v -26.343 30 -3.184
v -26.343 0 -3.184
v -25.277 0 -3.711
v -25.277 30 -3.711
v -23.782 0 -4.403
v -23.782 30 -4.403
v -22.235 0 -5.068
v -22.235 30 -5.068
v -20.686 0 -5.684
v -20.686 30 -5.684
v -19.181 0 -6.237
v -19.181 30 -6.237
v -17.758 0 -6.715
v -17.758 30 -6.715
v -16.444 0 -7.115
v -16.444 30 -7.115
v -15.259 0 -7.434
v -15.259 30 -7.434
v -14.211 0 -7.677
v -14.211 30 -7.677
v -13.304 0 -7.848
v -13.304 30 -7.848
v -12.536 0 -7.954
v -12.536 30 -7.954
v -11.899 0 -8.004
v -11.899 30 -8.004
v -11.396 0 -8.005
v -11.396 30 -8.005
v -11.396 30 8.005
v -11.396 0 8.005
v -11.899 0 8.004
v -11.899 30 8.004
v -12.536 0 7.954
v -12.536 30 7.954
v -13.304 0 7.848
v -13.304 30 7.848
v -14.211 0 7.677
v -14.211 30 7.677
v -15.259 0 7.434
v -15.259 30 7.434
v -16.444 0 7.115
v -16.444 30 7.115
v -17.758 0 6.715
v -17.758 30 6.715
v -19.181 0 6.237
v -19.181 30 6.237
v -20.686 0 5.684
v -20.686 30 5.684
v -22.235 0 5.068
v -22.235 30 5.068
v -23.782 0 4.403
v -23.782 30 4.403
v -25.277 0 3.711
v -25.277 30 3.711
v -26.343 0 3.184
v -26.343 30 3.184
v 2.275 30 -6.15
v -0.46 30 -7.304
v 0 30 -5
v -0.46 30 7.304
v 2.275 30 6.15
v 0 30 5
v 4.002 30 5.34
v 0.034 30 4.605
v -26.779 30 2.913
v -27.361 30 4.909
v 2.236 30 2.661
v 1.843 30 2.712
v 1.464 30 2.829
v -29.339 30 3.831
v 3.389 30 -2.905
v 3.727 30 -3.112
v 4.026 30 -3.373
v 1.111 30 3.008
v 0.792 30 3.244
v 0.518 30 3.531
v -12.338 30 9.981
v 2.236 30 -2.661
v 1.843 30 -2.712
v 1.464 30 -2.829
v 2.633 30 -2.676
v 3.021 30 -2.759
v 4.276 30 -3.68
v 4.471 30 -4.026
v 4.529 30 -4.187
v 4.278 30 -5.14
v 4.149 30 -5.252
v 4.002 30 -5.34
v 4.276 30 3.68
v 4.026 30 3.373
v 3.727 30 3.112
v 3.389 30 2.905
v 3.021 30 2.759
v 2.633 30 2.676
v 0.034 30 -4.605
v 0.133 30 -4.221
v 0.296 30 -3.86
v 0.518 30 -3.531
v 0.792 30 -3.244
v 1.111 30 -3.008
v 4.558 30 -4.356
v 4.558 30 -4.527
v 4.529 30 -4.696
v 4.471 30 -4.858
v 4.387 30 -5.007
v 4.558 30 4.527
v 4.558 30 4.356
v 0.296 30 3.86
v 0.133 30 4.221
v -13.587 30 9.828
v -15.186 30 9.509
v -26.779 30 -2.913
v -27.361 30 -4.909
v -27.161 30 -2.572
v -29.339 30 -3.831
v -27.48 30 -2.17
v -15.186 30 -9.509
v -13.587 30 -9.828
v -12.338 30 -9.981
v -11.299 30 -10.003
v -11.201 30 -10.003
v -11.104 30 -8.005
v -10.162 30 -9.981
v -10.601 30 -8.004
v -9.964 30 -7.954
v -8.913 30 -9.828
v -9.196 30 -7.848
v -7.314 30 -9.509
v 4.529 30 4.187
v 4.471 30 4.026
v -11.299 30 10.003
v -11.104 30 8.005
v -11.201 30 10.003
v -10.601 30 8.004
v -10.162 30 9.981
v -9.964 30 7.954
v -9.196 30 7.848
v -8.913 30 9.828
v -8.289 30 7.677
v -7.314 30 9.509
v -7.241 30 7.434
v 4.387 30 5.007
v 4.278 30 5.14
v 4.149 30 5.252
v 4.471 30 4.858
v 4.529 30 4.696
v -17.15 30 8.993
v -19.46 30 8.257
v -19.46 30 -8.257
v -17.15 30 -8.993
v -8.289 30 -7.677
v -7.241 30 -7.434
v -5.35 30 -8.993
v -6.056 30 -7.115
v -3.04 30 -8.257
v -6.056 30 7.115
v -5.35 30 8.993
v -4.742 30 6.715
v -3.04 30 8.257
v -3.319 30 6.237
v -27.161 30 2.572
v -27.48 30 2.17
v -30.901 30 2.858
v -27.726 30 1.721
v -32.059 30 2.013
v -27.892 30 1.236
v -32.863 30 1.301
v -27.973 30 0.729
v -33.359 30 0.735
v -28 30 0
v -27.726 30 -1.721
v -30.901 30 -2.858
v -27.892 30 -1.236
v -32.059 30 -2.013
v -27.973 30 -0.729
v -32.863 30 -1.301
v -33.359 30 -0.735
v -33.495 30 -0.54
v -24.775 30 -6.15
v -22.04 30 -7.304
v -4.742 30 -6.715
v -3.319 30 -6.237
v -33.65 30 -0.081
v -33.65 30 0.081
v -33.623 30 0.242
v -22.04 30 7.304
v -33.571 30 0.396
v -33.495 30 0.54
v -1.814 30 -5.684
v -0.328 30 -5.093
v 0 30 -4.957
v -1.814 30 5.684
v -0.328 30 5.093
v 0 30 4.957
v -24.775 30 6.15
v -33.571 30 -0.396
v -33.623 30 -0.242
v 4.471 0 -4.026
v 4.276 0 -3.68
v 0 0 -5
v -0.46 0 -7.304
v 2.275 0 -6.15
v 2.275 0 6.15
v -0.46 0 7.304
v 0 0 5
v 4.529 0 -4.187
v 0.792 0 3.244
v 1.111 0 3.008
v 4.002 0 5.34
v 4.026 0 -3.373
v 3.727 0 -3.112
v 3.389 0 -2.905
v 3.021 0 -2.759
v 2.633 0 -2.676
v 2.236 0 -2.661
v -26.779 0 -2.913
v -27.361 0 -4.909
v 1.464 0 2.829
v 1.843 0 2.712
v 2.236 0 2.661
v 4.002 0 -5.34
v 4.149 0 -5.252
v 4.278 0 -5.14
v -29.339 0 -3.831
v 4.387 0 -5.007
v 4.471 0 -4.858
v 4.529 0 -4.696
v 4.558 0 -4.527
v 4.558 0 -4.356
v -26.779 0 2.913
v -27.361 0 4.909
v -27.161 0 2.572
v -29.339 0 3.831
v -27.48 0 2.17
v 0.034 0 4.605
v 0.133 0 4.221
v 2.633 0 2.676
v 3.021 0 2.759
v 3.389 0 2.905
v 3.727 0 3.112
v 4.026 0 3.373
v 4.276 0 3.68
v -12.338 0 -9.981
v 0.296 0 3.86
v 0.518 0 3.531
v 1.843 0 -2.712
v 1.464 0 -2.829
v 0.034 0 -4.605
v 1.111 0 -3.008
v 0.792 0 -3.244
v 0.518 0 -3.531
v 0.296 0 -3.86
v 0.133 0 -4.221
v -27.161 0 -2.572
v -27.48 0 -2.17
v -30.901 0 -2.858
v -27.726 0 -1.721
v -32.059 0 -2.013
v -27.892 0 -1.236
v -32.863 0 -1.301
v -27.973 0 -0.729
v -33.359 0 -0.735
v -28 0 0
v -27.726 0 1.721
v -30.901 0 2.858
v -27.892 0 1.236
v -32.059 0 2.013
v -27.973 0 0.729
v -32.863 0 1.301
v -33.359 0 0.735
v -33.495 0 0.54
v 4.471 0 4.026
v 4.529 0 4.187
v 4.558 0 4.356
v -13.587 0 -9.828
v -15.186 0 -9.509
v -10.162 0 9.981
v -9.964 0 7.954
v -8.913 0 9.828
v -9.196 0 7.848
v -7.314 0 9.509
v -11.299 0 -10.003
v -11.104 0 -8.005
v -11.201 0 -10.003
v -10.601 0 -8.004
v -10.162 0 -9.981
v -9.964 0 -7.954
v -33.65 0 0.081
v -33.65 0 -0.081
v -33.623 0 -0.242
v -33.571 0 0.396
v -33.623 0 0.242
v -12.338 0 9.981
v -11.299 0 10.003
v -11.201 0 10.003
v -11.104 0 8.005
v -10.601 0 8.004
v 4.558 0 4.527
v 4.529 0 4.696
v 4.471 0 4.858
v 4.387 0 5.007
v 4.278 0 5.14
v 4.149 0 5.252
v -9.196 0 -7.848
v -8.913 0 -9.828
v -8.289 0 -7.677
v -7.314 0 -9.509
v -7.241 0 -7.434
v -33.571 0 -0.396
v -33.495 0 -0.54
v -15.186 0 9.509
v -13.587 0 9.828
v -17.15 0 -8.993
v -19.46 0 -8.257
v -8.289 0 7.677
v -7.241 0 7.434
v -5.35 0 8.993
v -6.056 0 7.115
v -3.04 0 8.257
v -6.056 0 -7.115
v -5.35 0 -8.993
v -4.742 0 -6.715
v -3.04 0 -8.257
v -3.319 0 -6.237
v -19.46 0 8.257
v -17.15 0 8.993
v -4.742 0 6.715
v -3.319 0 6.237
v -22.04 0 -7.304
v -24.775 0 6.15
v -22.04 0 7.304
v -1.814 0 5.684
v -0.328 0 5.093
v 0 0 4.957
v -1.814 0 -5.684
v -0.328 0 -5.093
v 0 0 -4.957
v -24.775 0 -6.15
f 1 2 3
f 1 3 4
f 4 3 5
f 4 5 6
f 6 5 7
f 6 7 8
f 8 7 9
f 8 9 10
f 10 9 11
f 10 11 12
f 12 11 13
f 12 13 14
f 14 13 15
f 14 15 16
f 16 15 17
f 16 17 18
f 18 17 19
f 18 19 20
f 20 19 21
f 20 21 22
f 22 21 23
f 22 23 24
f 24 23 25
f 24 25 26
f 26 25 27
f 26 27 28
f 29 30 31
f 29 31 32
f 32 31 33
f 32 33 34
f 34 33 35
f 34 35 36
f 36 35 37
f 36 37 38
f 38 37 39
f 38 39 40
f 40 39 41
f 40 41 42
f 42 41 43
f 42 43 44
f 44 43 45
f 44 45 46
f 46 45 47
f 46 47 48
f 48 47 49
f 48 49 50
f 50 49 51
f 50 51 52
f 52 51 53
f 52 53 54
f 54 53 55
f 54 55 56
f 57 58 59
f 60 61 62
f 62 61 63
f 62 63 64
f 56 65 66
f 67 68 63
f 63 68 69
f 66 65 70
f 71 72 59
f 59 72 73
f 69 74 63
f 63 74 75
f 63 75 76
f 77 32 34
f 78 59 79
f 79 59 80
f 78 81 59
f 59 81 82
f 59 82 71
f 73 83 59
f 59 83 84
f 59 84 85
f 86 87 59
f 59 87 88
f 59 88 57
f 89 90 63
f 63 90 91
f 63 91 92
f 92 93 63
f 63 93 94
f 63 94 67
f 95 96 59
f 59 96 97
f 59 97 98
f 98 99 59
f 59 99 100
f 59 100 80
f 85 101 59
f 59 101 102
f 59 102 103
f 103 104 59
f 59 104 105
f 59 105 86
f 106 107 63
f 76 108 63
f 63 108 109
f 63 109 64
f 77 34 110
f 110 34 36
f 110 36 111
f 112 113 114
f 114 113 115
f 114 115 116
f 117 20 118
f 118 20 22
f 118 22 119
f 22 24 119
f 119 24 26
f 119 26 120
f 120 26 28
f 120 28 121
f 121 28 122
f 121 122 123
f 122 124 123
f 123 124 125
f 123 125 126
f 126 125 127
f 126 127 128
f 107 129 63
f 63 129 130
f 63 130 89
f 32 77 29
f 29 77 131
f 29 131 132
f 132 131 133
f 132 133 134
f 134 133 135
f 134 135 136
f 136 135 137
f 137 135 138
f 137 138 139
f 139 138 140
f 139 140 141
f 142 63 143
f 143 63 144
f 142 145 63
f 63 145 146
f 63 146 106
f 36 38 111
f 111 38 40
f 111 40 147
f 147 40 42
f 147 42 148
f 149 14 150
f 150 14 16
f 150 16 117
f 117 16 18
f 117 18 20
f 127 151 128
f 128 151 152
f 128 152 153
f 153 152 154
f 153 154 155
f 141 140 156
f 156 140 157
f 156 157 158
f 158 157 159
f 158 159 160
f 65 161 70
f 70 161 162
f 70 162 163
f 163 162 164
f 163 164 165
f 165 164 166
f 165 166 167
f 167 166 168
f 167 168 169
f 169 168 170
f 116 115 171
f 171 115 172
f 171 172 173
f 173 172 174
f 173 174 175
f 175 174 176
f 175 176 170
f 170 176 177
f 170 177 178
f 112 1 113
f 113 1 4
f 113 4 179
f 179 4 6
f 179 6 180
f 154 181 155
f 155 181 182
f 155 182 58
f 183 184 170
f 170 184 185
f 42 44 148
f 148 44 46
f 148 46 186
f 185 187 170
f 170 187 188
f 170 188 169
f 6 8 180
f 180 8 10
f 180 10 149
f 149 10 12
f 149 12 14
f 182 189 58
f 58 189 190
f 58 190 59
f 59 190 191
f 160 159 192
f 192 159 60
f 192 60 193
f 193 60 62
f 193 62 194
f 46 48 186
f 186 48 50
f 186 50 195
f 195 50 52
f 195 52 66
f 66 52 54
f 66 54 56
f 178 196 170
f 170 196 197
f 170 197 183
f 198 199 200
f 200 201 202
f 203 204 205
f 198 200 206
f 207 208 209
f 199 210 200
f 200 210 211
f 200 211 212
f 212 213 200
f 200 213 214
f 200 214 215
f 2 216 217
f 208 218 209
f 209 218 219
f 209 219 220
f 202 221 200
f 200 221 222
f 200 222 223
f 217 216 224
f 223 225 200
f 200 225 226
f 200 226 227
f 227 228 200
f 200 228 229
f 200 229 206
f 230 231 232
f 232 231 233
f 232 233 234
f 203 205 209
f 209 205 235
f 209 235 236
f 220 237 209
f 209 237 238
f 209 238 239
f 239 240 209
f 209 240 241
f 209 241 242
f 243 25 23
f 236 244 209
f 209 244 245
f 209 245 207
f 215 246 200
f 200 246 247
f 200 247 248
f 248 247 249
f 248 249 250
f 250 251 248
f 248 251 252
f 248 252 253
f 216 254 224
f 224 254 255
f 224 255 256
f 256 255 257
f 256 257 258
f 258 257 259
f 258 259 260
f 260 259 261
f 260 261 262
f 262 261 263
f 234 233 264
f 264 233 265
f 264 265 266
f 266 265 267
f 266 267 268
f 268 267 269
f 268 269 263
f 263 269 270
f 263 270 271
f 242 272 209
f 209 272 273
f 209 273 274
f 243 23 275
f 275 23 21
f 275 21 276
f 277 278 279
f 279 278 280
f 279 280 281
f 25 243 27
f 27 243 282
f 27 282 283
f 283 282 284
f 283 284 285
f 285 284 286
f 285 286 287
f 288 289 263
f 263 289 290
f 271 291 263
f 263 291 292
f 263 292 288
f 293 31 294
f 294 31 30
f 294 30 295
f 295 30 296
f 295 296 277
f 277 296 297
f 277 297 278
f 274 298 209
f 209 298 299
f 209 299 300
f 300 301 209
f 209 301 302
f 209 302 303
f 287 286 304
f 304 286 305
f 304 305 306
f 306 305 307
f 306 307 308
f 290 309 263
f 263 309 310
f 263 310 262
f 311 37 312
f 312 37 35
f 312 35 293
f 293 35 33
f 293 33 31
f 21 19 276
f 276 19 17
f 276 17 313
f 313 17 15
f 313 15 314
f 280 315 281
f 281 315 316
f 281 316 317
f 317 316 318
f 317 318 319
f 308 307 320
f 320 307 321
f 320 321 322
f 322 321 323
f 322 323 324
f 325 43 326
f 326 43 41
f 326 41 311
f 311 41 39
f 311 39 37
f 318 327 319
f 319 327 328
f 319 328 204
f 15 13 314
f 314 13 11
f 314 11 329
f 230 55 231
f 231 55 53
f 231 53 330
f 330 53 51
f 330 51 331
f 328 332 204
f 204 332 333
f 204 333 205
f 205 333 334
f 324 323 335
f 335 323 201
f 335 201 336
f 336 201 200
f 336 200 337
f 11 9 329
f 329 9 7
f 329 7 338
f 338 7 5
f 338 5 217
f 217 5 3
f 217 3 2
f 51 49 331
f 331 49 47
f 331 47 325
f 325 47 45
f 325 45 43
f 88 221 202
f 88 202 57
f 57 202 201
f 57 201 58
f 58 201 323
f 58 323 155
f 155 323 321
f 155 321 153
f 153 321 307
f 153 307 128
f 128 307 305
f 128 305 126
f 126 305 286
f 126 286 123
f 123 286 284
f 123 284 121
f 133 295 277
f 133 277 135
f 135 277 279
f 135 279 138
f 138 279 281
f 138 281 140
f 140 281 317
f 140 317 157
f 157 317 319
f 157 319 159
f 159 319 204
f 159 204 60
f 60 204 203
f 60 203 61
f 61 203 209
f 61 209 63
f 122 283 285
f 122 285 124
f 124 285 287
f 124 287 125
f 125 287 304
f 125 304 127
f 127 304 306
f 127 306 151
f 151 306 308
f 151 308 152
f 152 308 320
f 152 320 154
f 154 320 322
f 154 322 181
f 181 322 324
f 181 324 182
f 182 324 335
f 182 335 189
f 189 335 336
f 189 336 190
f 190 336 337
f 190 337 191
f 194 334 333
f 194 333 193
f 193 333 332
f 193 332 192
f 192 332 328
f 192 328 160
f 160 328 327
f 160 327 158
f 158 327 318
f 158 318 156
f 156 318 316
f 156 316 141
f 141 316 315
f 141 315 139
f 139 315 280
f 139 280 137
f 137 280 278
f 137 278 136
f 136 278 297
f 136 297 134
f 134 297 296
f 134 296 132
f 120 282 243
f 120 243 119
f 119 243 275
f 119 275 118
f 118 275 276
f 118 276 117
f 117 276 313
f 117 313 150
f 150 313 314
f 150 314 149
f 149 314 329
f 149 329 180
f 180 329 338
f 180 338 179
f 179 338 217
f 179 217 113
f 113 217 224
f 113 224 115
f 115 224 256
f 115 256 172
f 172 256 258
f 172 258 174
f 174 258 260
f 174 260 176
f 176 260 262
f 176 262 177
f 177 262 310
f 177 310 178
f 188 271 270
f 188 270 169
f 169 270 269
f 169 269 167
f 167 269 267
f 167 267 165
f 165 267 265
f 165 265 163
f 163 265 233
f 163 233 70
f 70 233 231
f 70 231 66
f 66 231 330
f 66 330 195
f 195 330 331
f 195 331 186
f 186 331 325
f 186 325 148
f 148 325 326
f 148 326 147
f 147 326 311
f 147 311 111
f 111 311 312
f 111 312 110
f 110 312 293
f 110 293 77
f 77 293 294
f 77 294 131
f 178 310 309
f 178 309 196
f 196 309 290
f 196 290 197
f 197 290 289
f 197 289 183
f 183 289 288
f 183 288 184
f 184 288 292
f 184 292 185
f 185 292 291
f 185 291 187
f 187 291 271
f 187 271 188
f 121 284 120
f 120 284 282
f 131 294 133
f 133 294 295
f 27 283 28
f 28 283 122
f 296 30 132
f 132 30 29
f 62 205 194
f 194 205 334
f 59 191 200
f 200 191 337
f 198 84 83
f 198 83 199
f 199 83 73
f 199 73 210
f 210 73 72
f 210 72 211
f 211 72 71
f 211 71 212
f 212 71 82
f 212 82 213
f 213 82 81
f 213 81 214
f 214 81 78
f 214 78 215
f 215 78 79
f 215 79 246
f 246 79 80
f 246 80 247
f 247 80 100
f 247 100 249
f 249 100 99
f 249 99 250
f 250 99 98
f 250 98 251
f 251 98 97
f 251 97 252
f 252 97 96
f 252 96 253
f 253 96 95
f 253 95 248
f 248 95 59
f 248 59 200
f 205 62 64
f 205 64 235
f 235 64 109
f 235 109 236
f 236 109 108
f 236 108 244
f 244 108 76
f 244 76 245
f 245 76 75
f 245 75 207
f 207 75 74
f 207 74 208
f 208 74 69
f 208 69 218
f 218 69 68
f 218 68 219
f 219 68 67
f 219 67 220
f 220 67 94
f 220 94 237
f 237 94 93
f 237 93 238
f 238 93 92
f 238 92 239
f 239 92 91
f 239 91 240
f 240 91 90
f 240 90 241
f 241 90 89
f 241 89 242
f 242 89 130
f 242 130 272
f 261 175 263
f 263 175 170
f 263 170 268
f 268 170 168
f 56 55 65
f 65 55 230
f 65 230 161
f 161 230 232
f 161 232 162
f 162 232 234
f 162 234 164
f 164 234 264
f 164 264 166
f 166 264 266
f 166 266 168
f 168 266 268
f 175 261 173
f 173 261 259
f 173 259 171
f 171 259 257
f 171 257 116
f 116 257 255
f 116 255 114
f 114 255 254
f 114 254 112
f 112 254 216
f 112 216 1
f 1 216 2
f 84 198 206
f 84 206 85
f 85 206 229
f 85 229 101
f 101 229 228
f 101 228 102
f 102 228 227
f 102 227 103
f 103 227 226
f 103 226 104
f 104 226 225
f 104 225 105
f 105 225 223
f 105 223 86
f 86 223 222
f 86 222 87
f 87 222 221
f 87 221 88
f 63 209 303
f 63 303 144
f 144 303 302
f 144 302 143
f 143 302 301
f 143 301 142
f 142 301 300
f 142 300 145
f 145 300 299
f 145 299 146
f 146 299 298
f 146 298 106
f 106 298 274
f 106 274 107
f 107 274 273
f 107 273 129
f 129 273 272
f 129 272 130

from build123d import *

# Parameters (mm, degrees)
BOSS_EXTRUDE1_DEPTH = 30
FILLET1_R           = 1
SHELL1_T            = -2
CUT_EXTRUDE1_REACH  = 48.182
SKETCH3_W           = 10
SKETCH3_H           = 30
BOSS_EXTRUDE2_DEPTH = 30
BOSS_EXTRUDE4_START = -30
BOSS_EXTRUDE4_DEPTH = 30
FILLET2_R           = 3
FILLET3_R           = 1


# Read off the part's stored shape, not the designer's step: Boss-Extrude4
with BuildPart() as part:
    # Sketch1 → Boss-Extrude1 (new body)
    with BuildSketch(Plane(origin=(0, 0, 0), x_dir=(1, 0, 0), z_dir=(0, 1, 0))):
        with BuildLine():
            add(Edge.make_bspline(
                [(-11.25, 10), (-5.781911856, 10.311342007), (10.269870792, 3.454667183), (11.25, 0)],
                knots=[0.452930386, 0.452930386, 0.452930386, 0.452930386, 1, 1, 1, 1], degree=3))
            add(Edge.make_bspline(
                [(-11.25, -10), (-5.781911856, -10.311342007), (10.269870792, -3.454667183), (11.25, 0)],
                knots=[0.452930386, 0.452930386, 0.452930386, 0.452930386, 1, 1, 1, 1], degree=3))
            add(Edge.make_bspline(
                [(-11.25, -10), (-16.718088144, -10.311342007), (-32.769870792, -3.454667183), (-33.75, 0)],
                knots=[0.452930386, 0.452930386, 0.452930386, 0.452930386, 1, 1, 1, 1], degree=3))
            add(Edge.make_bspline(
                [(-11.25, 10), (-16.718088144, 10.311342007), (-32.769870792, 3.454667183), (-33.75, 0)],
                knots=[0.452930386, 0.452930386, 0.452930386, 0.452930386, 1, 1, 1, 1], degree=3))
        make_face()
    extrude(amount=BOSS_EXTRUDE1_DEPTH)

    # Fillet1
    fillet1_edges = [part.edges().sort_by_distance(p)[0] for p in [
        (-33.75, 15, 0),
        (-11.25, 15, -10),
        (11.25, 15, 0),
        (-11.25, 15, 10),
    ]]
    fillet(fillet1_edges, radius=FILLET1_R)

    # Shell1
    shell1_openings = [part.faces().sort_by_distance(p)[0] for p in [
        (-11.25, 30, 0),
        (-11.25, 0, 0),
    ]]
    offset(amount=SHELL1_T, openings=shell1_openings)

    # Sketch3 → Cut-Extrude1 (cut, up to next)
    with BuildSketch(Plane(origin=(0, 0, 0), x_dir=(0, 0, -1), z_dir=(1, 0, 0)), mode=Mode.PRIVATE) as cut_extrude1_sk1:
        with Locations((0, 15)):
            Rectangle(SKETCH3_W, SKETCH3_H)
    cut_extrude1_tool1 = extrude(cut_extrude1_sk1.sketch, amount=CUT_EXTRUDE1_REACH, mode=Mode.PRIVATE) & part.part
    add(cut_extrude1_tool1.solids().sort_by_distance((0, 15, 0))[0], mode=Mode.SUBTRACT)

    # Sketch4 → Boss-Extrude2 (add)
    with BuildSketch(Plane(origin=(0, 30, 0), x_dir=(1, 0, 0), z_dir=(0, 1, 0))):
        with BuildLine():
            Line((4.683590917, 5), (0, 5))
            ThreePointArc((0, 5), (2.341795458, 2.658204542), (4.683590917, 5))
        make_face()
        with BuildLine():
            Line((0, -5), (4.683590917, -5))
            ThreePointArc((4.683590917, -5), (2.341795458, -2.658204542), (0, -5))
        make_face()
    extrude(amount=-BOSS_EXTRUDE2_DEPTH)

    # Boss-Extrude4 outline → Boss-Extrude4 (add)
    with BuildSketch(Plane(origin=(0, 30, 0), x_dir=(1, 0, 0), z_dir=(0, 1, 0)).offset(BOSS_EXTRUDE4_START)):
        with BuildLine():
            ThreePointArc((-27.69069648, -2.46787393), (-28, 0), (-27.69069648, 2.46787393))
            add(Edge.make_bspline(
                [(-27.69069648, 2.46787393), (-27.822031215, 2.39499699), (-27.951900256, 2.322199534), (-28.080260991, 2.249502833), (-28.20707038, 2.176928557), (-28.332284982, 2.10449893), (-28.455860917, 2.032236786), (-28.57775383, 1.960165641), (-28.697918846, 1.88830977), (-28.816310527, 1.816694288), (-28.932882823, 1.745345254), (-29.047589016, 1.674289767), (-29.395924825, 1.455844025), (-29.623125506, 1.309538219), (-29.841540019, 1.164885503), (-30.050742717, 1.022190072), (-30.250257196, 0.881746107), (-30.439599681, 0.743903891), (-30.618272334, 0.609068339), (-30.785746265, 0.477701019), (-30.941461201, 0.350349869), (-31.084828141, 0.227682248), (-31.21523231, 0.110536702), (-31.332067668, -2.7e-08)],
                knots=[0.816861964, 0.816861964, 0.816861964, 0.816861964, 0.816861964, 0.816861964, 0.816861964, 0.816861964, 0.816861964, 0.816861964, 0.816861964, 0.816861964, 0.816861964, 0.853756111, 0.853756111, 0.853756111, 0.853756111, 0.853756111, 0.853756111, 0.853756111, 0.853756111, 0.853756111, 0.853756111, 0.853756111, 0.930801589, 0.930801589, 0.930801589, 0.930801589, 0.930801589, 0.930801589, 0.930801589, 0.930801589, 0.930801589, 0.930801589, 0.930801589, 0.930801589, 0.930801589], degree=12))
            add(Edge.make_bspline(
                [(-27.69069648, -2.46787393), (-27.822031215, -2.39499699), (-27.951900256, -2.322199534), (-28.080260991, -2.249502833), (-28.20707038, -2.176928557), (-28.332284982, -2.10449893), (-28.455860917, -2.032236786), (-28.57775383, -1.960165641), (-28.697918846, -1.88830977), (-28.816310527, -1.816694288), (-28.932882823, -1.745345254), (-29.047589016, -1.674289767), (-29.395924825, -1.455844025), (-29.623125506, -1.309538219), (-29.841540019, -1.164885503), (-30.050742717, -1.022190072), (-30.250257196, -0.881746107), (-30.439599681, -0.743903891), (-30.618272334, -0.609068339), (-30.785746265, -0.477701019), (-30.941461201, -0.350349869), (-31.084828141, -0.227682248), (-31.21523231, -0.110536702), (-31.332067668, -2.7e-08)],
                knots=[0.816861964, 0.816861964, 0.816861964, 0.816861964, 0.816861964, 0.816861964, 0.816861964, 0.816861964, 0.816861964, 0.816861964, 0.816861964, 0.816861964, 0.816861964, 0.853756111, 0.853756111, 0.853756111, 0.853756111, 0.853756111, 0.853756111, 0.853756111, 0.853756111, 0.853756111, 0.853756111, 0.853756111, 0.930801589, 0.930801589, 0.930801589, 0.930801589, 0.930801589, 0.930801589, 0.930801589, 0.930801589, 0.930801589, 0.930801589, 0.930801589, 0.930801589, 0.930801589], degree=12))
        make_face()
    extrude(amount=BOSS_EXTRUDE4_DEPTH)

    # Fillet2
    fillet2_edges = [part.edges().sort_by_distance(p)[0] for p in [
        (-27.69069648, 15, 2.46787393),
        (-27.69069648, 15, -2.46787393),
    ]]
    fillet(fillet2_edges, radius=FILLET2_R)

    # Fillet3
    fillet3_edges = [part.edges().sort_by_distance(p)[0] for p in [
        (4.683590936, 15, -5),
        (4.683590936, 15, 5),
    ]]
    fillet(fillet3_edges, radius=FILLET3_R)


solid = part.part
